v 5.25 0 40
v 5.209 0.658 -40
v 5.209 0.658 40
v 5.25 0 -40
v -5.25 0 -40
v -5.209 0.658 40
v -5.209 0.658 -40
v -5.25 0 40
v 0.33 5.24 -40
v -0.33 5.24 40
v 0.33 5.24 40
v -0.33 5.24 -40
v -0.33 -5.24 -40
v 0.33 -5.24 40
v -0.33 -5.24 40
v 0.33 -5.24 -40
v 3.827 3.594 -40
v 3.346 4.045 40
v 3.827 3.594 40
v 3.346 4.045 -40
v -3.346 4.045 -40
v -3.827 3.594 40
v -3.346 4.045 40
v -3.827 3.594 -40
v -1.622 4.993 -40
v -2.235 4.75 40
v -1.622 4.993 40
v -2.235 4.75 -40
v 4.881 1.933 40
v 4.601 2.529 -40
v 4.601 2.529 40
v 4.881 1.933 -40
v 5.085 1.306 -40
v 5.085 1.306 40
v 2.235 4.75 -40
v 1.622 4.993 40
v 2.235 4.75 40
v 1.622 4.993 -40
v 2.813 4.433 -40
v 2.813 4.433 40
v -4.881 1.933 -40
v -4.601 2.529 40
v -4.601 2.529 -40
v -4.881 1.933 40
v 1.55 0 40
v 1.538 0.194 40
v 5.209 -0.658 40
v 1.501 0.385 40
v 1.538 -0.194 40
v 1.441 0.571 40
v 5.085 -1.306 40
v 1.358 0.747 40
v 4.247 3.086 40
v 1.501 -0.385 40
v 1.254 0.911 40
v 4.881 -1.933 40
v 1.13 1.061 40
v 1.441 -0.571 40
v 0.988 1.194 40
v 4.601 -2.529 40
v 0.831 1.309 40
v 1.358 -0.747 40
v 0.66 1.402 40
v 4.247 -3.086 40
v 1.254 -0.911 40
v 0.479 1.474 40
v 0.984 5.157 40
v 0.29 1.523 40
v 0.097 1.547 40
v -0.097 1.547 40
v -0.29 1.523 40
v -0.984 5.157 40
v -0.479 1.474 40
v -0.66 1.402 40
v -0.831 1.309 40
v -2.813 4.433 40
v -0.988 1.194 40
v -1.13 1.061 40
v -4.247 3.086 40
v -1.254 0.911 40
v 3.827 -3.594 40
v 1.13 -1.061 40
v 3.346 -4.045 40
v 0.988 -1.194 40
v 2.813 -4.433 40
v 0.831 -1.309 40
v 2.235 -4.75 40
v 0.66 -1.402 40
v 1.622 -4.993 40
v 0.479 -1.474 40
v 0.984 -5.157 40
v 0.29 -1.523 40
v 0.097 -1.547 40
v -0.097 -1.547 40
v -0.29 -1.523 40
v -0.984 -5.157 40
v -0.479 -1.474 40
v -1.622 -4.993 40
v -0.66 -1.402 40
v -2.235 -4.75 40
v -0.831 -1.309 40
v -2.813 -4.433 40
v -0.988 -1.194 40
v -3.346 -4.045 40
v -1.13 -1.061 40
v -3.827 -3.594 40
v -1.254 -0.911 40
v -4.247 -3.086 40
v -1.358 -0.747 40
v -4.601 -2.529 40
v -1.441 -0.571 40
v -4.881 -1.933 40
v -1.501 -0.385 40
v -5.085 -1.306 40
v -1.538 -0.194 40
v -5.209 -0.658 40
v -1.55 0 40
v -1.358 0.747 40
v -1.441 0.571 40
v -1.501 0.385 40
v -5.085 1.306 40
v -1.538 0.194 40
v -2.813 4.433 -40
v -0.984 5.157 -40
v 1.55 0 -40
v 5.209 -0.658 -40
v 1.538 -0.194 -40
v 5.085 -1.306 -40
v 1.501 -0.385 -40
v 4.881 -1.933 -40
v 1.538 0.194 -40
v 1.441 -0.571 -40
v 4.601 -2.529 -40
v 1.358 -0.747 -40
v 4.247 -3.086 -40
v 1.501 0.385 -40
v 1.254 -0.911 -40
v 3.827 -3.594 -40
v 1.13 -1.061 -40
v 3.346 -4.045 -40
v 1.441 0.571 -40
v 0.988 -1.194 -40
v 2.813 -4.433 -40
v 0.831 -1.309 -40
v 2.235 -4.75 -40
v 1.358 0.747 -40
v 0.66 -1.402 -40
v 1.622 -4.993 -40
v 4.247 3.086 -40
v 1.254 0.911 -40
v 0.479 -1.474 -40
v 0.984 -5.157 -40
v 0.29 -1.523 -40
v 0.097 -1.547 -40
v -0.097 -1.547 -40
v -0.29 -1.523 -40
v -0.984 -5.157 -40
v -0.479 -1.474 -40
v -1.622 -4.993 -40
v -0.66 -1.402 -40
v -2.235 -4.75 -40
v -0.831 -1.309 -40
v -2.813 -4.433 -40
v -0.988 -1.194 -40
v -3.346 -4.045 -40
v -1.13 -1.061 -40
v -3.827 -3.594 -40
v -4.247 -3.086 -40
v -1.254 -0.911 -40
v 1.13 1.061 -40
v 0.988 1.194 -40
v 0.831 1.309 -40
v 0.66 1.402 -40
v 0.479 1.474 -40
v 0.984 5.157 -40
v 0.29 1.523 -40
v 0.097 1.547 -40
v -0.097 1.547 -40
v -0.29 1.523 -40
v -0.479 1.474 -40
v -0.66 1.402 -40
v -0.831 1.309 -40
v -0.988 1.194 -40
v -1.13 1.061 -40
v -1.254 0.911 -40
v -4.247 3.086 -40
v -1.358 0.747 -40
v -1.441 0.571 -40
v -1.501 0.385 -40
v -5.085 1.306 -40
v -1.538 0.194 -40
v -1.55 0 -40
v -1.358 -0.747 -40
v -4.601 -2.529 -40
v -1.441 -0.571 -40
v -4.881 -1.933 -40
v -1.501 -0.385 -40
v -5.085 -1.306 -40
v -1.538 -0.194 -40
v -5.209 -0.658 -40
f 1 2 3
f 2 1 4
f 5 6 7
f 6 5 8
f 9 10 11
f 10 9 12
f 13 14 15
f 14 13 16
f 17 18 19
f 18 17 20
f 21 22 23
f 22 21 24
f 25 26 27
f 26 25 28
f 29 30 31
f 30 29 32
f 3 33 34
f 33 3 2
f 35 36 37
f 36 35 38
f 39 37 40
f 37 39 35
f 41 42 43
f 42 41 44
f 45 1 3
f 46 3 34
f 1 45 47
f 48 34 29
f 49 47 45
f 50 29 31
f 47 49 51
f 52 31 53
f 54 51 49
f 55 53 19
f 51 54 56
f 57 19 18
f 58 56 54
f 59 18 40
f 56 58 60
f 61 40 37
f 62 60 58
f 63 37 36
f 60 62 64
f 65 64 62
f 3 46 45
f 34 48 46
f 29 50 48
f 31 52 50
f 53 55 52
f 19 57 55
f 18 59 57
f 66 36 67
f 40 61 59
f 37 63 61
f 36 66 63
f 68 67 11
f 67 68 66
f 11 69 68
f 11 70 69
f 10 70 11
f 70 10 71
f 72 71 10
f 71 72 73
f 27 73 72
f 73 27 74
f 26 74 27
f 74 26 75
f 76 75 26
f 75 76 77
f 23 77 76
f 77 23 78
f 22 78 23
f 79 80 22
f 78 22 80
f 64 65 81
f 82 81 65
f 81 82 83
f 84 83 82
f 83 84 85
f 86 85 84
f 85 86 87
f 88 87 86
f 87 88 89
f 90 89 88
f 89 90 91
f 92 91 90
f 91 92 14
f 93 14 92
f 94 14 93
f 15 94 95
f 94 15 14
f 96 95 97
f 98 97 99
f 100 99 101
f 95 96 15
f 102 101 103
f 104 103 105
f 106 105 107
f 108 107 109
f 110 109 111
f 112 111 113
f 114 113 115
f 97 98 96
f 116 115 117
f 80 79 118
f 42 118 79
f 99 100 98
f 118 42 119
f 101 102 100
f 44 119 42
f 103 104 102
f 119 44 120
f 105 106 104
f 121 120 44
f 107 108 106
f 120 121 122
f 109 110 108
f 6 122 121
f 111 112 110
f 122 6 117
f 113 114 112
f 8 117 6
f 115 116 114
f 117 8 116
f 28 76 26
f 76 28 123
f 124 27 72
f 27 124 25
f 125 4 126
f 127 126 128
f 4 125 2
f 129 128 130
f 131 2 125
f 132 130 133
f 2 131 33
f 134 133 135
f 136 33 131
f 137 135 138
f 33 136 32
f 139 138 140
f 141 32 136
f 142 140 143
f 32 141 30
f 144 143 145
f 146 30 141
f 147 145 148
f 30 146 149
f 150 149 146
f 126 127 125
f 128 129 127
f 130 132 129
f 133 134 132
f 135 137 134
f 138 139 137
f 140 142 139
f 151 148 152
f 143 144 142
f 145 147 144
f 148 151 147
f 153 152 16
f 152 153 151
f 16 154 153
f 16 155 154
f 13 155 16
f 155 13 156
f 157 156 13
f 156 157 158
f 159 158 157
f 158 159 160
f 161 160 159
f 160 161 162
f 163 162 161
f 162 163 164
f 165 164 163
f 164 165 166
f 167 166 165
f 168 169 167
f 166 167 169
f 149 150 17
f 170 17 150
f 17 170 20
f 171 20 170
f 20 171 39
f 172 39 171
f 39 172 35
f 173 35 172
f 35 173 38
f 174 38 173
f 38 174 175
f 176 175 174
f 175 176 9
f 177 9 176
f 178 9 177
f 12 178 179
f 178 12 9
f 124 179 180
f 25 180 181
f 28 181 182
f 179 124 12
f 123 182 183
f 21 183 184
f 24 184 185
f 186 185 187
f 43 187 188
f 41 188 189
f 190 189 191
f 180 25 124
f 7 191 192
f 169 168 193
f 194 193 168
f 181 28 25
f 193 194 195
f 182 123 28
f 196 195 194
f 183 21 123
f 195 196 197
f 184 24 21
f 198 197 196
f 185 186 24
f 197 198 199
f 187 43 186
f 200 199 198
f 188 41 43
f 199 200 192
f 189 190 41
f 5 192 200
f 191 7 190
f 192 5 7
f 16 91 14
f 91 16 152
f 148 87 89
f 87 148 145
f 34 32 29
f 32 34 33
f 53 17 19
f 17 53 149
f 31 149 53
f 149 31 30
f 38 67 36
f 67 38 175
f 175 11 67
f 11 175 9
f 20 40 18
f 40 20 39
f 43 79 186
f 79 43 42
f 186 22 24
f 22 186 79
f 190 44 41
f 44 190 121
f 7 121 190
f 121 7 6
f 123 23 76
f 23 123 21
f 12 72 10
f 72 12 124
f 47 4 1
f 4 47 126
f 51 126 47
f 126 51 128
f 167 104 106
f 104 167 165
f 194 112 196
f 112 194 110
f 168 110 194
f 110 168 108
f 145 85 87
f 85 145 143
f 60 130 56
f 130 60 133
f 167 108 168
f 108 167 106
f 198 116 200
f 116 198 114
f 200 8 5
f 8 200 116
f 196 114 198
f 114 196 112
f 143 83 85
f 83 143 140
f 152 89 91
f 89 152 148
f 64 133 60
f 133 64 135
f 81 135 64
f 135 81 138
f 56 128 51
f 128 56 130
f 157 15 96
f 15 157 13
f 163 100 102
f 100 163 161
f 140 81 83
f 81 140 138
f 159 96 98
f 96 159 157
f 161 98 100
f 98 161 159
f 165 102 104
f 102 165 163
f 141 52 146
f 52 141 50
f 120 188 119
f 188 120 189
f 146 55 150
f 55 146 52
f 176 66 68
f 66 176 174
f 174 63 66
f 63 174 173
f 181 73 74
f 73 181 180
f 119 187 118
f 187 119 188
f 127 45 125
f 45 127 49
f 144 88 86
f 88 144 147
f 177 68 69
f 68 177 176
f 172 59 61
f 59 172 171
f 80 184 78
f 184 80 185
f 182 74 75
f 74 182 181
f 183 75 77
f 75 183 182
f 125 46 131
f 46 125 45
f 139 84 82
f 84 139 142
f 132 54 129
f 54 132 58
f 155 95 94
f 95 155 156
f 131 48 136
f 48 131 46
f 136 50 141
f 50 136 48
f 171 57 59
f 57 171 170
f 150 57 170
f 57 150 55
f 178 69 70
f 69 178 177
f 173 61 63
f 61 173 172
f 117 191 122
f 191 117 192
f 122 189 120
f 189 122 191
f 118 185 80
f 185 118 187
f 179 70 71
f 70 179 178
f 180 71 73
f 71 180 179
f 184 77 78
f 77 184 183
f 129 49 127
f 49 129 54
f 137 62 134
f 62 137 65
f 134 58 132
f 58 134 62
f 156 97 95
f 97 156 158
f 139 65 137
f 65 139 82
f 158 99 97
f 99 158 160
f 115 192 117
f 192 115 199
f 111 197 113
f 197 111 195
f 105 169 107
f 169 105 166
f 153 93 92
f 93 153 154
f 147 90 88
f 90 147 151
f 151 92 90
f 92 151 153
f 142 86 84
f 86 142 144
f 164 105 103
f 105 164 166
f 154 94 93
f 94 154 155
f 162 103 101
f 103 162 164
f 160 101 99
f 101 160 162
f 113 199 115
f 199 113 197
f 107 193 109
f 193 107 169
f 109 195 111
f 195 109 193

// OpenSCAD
$fn = 50;


difference() {
	union() {
		translate(v = [0, 0, -40.0000000000]) {
			cylinder(h = 80, r = 5.2500000000);
		}
	}
	union() {
		translate(v = [0, 0, -100.0000000000]) {
			cylinder(h = 200, r = 1.5500000000);
		}
	}
}
